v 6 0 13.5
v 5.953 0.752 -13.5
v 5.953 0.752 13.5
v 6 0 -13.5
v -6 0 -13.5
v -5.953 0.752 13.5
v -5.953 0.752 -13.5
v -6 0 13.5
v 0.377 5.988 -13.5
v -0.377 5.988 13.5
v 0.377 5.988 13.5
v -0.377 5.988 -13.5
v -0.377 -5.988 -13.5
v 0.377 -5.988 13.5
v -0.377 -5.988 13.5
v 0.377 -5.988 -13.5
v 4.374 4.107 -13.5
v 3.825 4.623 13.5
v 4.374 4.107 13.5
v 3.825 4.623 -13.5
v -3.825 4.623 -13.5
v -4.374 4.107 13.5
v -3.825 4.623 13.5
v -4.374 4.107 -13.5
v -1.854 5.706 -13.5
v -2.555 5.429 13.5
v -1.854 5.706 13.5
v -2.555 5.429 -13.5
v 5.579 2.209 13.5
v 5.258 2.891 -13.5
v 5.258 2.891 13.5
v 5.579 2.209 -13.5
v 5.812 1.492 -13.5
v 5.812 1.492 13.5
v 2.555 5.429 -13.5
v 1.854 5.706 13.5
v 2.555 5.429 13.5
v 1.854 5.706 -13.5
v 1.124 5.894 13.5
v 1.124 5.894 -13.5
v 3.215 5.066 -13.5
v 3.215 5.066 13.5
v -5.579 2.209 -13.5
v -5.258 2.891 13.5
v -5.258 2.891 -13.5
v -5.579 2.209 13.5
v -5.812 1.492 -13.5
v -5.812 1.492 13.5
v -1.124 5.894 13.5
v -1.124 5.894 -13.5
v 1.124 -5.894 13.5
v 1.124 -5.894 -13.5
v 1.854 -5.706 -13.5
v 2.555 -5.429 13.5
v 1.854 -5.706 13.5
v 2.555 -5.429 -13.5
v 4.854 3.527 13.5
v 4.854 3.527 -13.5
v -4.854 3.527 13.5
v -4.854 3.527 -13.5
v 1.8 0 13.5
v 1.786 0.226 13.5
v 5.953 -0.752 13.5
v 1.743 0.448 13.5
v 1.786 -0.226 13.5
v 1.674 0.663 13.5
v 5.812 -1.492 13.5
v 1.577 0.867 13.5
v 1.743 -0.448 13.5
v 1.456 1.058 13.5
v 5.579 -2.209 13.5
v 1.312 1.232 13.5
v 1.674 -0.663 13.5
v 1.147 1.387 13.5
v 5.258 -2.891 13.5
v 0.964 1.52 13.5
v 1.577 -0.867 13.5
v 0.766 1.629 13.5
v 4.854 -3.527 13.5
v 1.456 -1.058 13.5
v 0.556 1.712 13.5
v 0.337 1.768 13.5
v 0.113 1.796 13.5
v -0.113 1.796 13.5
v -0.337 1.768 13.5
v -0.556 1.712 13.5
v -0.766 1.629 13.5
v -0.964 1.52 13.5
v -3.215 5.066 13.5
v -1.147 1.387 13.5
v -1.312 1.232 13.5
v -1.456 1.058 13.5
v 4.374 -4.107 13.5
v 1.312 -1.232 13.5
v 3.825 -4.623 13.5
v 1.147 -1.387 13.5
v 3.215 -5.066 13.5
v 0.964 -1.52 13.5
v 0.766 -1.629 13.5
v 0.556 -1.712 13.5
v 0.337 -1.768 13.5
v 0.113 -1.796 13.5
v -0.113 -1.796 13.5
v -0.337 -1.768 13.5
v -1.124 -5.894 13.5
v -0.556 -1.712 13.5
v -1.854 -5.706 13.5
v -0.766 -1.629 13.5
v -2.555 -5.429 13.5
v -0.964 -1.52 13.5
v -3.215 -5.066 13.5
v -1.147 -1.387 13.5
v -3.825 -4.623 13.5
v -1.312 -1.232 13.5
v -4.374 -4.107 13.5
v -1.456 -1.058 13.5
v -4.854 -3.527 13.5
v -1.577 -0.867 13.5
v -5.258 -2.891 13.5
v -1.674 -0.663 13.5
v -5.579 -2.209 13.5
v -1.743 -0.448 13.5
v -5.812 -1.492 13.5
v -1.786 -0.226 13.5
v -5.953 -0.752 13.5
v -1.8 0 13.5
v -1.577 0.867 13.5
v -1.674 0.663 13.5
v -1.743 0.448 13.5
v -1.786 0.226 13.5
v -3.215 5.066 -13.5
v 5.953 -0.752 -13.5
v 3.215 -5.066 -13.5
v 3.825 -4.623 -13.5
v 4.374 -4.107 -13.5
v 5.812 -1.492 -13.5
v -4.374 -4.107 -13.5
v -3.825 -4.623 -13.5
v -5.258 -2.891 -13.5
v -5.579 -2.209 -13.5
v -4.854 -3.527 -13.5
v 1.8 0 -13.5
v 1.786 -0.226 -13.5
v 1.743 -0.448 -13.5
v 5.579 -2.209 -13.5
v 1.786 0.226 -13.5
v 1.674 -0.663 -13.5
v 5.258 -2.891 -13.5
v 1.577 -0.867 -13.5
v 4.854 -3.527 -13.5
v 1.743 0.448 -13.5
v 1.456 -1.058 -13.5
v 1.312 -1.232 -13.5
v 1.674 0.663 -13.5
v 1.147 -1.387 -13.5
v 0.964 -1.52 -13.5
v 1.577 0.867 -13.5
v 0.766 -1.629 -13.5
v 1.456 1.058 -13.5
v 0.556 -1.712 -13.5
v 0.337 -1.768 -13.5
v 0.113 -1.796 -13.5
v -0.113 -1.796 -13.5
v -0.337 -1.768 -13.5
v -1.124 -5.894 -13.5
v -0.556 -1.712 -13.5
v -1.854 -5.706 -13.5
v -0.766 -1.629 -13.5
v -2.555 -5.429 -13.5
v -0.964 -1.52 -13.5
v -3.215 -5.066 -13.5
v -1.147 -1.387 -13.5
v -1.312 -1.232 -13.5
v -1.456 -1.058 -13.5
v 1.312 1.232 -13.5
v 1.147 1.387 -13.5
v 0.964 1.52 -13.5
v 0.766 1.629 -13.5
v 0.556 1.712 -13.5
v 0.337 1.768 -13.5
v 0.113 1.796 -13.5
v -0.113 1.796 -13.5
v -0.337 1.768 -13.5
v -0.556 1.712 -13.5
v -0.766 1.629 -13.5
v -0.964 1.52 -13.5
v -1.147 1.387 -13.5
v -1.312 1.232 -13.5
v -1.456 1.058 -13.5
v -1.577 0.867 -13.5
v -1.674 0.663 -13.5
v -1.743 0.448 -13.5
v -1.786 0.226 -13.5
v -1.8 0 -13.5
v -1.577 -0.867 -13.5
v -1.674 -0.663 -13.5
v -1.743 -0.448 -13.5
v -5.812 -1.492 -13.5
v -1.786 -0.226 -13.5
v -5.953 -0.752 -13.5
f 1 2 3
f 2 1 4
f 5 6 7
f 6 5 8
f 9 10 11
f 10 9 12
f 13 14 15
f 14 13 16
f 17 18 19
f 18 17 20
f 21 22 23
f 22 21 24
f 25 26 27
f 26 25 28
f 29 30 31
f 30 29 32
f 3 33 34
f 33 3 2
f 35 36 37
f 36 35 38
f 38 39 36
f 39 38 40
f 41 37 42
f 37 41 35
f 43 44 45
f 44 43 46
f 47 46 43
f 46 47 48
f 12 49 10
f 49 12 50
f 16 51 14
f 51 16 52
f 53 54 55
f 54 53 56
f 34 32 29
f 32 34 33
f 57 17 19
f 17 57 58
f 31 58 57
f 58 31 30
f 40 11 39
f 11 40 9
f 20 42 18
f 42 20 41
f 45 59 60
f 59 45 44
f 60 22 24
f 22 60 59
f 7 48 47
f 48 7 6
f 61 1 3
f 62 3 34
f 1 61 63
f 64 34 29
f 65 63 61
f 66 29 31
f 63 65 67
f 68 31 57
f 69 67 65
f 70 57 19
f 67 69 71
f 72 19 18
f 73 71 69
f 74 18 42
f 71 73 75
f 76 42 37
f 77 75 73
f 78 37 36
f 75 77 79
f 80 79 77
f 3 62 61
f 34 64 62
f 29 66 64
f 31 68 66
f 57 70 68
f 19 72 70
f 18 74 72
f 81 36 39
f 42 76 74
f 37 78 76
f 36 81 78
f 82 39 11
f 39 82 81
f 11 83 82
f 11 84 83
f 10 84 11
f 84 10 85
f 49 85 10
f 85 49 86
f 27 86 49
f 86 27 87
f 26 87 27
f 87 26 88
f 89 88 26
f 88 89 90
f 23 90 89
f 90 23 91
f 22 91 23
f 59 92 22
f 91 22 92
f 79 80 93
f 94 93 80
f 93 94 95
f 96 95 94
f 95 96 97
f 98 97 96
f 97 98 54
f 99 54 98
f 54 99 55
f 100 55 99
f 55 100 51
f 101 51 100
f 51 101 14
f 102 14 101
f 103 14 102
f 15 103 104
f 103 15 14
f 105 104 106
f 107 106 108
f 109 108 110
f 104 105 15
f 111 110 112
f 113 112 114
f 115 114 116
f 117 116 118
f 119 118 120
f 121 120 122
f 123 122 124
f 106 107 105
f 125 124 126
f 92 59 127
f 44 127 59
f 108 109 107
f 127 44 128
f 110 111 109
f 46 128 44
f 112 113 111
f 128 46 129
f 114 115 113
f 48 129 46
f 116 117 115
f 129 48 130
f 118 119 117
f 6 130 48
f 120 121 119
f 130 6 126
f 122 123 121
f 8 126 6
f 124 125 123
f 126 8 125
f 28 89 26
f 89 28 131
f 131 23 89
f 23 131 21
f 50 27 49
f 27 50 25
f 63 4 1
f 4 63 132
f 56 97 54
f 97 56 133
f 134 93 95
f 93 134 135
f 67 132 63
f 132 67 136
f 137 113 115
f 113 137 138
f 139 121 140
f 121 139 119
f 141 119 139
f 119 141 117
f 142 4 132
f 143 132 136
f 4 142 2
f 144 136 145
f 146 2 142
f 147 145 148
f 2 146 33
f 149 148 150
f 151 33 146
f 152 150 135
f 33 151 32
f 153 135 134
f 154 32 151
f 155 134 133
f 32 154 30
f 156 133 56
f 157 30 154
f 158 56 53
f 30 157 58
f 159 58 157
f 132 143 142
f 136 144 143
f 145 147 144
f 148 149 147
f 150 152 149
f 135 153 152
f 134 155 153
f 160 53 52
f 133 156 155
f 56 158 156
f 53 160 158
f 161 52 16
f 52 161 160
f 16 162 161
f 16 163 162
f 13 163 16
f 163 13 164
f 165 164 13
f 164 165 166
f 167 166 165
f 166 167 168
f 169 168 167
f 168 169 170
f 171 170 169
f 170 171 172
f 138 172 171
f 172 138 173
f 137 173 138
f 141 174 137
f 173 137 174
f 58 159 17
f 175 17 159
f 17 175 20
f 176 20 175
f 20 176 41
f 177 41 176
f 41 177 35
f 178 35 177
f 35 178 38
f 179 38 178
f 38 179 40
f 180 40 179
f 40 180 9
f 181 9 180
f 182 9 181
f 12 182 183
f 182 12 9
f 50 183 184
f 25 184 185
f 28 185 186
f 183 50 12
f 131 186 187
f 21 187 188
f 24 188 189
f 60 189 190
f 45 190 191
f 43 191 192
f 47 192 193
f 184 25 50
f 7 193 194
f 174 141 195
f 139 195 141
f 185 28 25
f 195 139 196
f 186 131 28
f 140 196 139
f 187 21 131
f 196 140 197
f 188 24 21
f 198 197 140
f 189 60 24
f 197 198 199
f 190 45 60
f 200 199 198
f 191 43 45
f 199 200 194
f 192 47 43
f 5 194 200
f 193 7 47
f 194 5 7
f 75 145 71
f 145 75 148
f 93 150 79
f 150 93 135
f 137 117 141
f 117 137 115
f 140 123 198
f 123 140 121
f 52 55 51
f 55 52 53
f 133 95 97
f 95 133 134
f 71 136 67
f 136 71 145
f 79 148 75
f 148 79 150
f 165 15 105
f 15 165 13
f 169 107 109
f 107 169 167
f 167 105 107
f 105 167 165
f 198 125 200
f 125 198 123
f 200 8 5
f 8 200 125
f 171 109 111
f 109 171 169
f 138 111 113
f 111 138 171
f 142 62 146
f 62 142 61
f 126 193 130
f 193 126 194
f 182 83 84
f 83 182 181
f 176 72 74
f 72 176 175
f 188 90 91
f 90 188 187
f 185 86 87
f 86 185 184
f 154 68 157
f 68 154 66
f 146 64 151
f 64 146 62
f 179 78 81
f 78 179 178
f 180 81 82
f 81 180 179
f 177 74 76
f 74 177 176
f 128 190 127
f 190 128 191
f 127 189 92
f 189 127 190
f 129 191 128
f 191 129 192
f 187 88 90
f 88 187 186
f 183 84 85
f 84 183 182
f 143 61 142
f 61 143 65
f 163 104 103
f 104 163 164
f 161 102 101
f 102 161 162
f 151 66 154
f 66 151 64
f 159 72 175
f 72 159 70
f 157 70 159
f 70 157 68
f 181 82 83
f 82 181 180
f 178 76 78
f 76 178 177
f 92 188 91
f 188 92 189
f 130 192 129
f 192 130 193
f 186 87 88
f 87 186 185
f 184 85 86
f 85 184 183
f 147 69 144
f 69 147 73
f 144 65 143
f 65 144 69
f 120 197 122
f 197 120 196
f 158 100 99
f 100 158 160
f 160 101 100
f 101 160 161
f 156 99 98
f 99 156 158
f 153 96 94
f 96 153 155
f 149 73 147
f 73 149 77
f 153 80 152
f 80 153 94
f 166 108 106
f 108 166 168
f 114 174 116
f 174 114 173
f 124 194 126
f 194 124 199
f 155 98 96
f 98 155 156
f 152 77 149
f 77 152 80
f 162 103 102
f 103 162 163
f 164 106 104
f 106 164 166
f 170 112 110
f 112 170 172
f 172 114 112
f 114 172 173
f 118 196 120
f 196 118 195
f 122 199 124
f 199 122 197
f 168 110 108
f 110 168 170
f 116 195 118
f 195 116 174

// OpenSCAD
$fn = 50;


difference() {
	union() {
		translate(v = [0, 0, -13.5000000000]) {
			cylinder(h = 27, r = 6.0000000000);
		}
	}
	union() {
		translate(v = [0, 0, -100.0000000000]) {
			cylinder(h = 200, r = 1.8000000000);
		}
	}
}
